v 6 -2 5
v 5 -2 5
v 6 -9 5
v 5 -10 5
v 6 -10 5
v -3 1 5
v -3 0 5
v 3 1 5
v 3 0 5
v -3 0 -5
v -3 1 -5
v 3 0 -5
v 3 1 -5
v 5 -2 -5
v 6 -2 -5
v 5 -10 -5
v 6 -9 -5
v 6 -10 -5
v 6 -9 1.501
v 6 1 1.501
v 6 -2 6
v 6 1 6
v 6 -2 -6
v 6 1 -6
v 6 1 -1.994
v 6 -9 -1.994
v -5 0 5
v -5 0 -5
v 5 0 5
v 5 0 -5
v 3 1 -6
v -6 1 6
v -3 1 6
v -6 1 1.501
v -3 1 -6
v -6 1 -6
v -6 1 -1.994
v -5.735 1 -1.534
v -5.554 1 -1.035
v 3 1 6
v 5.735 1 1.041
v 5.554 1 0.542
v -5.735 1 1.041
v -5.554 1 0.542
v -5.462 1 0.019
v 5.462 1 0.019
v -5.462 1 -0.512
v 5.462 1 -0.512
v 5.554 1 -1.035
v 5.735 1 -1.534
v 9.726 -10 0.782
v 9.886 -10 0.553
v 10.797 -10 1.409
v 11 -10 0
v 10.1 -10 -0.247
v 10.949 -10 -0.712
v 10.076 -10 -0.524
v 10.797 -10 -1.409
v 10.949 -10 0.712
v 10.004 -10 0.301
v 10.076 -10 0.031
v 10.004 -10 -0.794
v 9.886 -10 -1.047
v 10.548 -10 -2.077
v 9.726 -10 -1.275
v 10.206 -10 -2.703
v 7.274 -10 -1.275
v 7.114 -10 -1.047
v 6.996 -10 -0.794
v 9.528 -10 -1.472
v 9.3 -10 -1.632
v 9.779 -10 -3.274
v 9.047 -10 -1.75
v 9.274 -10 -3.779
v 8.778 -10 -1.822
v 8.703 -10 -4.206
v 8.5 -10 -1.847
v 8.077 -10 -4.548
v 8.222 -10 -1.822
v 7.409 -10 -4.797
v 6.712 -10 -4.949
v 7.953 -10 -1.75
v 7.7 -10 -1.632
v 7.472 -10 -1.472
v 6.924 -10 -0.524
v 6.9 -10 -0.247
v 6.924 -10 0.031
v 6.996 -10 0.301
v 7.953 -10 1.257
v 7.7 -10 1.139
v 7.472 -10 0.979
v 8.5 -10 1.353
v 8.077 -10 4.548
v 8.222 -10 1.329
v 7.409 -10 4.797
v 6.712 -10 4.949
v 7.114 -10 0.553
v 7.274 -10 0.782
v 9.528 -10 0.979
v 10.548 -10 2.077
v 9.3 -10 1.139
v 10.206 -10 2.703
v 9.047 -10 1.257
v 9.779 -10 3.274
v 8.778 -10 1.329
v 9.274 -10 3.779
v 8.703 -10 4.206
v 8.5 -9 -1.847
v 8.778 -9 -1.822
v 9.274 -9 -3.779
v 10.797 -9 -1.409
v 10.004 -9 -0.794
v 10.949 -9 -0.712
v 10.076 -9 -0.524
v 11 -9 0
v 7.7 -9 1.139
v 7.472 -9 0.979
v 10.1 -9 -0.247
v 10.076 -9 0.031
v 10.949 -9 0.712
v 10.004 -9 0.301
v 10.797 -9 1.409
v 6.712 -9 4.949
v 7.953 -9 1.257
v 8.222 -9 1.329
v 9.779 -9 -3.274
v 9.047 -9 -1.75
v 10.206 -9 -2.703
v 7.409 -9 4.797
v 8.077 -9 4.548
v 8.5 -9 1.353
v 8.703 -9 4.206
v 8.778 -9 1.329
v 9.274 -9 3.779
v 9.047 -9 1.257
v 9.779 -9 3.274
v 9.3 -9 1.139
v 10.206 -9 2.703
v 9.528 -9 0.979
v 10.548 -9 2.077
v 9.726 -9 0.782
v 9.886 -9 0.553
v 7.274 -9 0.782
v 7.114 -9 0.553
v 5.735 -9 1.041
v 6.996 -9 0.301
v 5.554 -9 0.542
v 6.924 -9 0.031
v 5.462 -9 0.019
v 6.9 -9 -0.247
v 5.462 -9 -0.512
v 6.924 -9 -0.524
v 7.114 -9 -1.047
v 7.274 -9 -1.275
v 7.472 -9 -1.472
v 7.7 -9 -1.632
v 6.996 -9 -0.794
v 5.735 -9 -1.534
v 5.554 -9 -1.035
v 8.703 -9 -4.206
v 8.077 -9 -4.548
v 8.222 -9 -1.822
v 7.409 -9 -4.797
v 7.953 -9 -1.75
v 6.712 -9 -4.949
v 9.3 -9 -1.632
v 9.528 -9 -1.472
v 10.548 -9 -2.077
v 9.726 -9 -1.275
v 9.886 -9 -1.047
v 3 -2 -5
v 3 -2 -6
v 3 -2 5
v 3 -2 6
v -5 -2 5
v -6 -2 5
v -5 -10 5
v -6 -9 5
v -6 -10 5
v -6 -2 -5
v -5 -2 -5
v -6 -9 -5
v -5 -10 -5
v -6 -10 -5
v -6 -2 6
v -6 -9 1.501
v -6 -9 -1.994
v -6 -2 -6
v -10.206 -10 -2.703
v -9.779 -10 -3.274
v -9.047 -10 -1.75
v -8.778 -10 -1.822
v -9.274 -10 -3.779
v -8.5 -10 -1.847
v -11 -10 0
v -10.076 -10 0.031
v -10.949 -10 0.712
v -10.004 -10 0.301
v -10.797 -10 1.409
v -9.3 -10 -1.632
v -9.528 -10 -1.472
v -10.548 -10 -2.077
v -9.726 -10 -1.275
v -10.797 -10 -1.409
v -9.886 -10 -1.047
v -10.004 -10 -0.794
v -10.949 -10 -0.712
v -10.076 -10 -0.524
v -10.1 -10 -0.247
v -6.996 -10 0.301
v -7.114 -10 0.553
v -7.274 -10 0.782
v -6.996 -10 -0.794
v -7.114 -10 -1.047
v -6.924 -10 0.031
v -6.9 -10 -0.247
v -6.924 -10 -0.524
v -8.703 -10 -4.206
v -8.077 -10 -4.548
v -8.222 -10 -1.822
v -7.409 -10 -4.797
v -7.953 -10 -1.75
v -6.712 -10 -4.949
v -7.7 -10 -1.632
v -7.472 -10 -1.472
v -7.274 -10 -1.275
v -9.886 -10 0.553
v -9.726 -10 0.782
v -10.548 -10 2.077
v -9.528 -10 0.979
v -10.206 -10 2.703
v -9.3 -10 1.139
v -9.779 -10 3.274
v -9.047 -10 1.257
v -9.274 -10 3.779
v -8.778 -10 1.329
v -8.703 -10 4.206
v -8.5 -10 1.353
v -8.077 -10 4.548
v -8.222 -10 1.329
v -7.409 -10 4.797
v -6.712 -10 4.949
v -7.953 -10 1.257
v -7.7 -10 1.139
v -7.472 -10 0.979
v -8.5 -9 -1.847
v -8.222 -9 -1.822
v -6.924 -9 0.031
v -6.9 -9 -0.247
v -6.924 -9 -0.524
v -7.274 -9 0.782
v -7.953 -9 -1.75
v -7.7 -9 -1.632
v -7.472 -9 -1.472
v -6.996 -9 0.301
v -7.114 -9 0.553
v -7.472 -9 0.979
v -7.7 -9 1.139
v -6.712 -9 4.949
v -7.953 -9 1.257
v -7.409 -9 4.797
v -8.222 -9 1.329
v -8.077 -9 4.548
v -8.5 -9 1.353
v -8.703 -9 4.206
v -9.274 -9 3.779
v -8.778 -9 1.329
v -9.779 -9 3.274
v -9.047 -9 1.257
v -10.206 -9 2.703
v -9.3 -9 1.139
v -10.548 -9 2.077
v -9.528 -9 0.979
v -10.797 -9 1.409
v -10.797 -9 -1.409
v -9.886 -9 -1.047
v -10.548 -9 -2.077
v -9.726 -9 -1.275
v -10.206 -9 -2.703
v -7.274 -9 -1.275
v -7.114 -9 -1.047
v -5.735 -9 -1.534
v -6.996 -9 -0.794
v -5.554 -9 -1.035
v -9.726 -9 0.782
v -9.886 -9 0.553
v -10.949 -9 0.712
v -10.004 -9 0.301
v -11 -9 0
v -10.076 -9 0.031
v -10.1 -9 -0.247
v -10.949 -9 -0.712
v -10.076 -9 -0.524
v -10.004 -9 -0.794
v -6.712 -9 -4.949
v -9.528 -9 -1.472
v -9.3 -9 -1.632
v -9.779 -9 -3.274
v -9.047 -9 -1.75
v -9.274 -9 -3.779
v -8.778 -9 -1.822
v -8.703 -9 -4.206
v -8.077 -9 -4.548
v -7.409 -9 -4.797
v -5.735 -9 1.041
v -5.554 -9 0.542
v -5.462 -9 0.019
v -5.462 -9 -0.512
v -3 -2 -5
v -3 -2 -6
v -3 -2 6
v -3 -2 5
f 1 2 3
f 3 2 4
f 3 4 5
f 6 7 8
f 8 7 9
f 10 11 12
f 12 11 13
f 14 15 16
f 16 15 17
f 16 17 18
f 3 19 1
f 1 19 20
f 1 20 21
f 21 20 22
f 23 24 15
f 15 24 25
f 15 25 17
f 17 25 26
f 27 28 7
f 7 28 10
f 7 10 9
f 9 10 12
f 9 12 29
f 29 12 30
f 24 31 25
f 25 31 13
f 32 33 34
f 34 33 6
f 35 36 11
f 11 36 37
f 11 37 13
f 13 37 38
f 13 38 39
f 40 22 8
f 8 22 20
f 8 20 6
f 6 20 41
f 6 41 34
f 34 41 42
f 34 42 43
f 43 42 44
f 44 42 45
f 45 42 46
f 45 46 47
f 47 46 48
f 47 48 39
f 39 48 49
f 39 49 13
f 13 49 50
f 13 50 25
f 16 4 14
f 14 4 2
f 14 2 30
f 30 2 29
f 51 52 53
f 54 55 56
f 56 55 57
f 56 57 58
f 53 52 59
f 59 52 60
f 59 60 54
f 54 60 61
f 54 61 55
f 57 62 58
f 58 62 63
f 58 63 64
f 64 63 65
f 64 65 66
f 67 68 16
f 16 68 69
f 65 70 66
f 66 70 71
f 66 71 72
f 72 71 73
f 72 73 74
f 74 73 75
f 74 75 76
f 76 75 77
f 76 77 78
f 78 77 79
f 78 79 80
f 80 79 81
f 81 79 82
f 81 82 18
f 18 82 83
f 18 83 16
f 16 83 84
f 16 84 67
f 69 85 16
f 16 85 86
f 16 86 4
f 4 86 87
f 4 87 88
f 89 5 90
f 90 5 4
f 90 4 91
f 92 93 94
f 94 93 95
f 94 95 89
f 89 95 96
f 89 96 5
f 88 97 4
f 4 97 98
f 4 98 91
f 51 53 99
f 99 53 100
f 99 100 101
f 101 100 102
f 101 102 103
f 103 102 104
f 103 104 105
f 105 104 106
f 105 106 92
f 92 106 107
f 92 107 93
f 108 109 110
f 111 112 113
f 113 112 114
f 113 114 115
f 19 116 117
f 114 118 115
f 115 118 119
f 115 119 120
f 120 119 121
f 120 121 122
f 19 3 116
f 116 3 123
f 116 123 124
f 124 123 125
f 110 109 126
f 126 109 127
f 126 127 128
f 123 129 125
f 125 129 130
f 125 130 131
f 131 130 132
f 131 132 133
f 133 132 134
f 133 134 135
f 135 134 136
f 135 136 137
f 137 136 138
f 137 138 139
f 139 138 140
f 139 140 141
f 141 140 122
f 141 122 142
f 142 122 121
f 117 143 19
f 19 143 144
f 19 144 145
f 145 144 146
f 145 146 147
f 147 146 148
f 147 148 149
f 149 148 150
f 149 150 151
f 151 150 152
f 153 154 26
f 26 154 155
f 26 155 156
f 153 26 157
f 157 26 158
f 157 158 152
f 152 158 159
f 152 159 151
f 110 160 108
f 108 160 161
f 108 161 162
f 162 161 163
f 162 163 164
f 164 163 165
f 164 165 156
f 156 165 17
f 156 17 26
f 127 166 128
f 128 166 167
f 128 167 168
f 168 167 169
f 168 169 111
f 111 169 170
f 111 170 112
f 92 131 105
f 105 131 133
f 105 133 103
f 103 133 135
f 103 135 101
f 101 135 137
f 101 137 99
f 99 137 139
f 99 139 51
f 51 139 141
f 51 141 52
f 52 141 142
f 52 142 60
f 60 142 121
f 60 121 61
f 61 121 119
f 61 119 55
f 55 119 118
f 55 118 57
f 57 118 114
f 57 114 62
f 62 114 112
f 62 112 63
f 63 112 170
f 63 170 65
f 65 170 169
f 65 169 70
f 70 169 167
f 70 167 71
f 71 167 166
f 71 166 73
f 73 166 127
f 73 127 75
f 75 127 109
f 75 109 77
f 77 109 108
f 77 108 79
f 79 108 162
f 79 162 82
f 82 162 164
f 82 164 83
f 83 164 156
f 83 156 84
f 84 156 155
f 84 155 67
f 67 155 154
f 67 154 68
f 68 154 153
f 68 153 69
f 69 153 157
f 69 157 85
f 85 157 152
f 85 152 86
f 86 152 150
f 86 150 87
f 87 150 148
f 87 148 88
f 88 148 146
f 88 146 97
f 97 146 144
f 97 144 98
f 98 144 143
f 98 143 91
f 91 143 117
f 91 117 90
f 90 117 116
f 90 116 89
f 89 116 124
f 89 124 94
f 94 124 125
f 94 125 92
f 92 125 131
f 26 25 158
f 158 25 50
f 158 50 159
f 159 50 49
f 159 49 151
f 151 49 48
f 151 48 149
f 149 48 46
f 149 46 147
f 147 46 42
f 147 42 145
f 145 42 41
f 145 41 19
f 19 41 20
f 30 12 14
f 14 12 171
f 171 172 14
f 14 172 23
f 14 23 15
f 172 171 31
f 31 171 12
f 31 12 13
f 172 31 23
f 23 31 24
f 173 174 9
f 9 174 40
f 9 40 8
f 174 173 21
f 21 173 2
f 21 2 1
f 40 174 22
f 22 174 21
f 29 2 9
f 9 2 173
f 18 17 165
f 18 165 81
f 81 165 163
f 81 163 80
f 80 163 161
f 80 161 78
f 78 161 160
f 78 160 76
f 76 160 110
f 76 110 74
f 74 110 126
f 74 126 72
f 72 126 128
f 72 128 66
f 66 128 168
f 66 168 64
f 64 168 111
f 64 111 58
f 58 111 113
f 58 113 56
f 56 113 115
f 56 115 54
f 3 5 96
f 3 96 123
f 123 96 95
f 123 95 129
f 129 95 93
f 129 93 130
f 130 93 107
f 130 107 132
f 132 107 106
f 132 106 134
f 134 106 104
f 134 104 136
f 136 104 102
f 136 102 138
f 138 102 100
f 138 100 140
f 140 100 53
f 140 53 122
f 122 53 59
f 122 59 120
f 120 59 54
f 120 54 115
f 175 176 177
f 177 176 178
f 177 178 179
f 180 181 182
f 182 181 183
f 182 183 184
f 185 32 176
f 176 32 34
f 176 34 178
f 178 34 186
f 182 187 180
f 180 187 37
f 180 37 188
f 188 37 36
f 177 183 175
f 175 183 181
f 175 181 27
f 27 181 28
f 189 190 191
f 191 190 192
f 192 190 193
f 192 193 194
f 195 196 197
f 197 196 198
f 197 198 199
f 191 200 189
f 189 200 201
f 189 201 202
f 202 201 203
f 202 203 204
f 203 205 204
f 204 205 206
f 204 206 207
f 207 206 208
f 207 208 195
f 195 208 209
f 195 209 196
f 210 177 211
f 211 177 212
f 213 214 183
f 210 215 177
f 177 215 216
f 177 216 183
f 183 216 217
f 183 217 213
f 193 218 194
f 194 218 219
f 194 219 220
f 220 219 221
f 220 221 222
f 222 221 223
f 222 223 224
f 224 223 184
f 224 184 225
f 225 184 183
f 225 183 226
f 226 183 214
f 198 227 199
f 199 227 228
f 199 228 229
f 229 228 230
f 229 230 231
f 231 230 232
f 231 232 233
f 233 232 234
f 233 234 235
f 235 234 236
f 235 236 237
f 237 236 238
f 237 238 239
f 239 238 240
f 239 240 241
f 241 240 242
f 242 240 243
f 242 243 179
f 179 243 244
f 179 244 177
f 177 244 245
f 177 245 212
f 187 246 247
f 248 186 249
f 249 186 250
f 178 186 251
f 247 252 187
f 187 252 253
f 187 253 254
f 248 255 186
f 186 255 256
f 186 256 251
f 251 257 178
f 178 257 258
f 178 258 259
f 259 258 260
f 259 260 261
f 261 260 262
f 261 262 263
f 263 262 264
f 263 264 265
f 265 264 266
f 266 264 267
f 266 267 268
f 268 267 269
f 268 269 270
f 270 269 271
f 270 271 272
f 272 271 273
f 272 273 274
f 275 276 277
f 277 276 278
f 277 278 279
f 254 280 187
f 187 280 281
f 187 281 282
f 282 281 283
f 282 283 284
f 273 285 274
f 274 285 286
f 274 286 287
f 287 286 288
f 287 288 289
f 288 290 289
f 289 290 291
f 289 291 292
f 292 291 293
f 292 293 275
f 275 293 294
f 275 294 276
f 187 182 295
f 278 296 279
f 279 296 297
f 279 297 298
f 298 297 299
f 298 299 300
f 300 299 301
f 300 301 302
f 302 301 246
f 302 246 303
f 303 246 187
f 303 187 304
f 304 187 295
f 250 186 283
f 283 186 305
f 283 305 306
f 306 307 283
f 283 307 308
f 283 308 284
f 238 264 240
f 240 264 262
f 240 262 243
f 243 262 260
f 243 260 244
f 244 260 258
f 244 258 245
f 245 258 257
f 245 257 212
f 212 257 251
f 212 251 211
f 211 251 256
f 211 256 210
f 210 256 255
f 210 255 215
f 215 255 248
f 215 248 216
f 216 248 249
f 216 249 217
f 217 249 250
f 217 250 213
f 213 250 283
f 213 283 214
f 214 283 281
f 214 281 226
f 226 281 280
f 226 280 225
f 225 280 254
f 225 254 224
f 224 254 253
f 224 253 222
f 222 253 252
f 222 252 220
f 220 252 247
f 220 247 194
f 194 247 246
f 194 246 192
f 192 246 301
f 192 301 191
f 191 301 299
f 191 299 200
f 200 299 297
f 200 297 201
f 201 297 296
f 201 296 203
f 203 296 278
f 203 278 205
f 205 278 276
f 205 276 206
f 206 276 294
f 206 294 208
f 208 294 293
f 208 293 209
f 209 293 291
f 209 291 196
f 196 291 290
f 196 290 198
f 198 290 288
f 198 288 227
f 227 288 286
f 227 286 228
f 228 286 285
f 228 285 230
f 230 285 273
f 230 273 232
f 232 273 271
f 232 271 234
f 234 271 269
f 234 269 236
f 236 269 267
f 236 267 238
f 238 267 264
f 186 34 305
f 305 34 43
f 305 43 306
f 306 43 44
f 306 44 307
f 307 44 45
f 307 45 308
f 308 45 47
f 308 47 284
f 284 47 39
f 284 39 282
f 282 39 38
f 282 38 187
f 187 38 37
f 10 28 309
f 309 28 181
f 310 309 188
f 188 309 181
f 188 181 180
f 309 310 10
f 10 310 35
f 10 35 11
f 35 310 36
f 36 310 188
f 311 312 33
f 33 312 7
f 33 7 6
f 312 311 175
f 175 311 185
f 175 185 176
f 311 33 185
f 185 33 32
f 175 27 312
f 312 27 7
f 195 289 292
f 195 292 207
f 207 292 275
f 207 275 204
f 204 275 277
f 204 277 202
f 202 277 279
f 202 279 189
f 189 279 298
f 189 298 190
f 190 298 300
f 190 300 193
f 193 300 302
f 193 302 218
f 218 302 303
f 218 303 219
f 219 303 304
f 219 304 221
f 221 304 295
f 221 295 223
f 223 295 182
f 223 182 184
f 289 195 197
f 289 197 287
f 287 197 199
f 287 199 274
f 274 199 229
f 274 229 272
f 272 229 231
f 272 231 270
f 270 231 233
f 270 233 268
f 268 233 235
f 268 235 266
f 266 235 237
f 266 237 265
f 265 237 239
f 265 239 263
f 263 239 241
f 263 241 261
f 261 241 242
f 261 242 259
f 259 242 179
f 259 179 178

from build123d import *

# Parameters (mm, degrees)
SKETCH1_W           = 6
SKETCH1_H           = 10
BOSS_EXTRUDE1_DEPTH = 1
SKETCH2_W           = 1
SKETCH2_H           = 10
BOSS_EXTRUDE2_DEPTH = 10
SKETCH3_W           = 10
SKETCH3_H           = 1
BOSS_EXTRUDE3_DEPTH = 5
CUT_EXTRUDE1_REACH  = 17.684
SKETCH4_R           = 1.6
CUT_EXTRUDE6_START  = -10
SKETCH5_R           = 3.05
CUT_EXTRUDE6_DEPTH  = 10
SKETCH6_W           = 3
SKETCH6_H           = 3
BOSS_EXTRUDE4_DEPTH = 1
SKETCH7_W           = 3
SKETCH7_H           = 3
BOSS_EXTRUDE5_DEPTH = 1
FILLET2_R           = 5


with BuildPart() as part:
    # Sketch1 → Boss-Extrude1 (new body)
    with BuildSketch(Plane(origin=(0, 0, 0), x_dir=(1, 0, 0), z_dir=(0, 1, 0))):
        with Locations((3, 0)):
            Rectangle(SKETCH1_W, SKETCH1_H)
    extrude(amount=BOSS_EXTRUDE1_DEPTH)

    # Sketch2 → Boss-Extrude2 (add)
    with BuildSketch(Plane.XZ):
        with Locations((5.5, 0)):
            Rectangle(SKETCH2_W, SKETCH2_H)
    extrude(amount=BOSS_EXTRUDE2_DEPTH)

    # Sketch3 → Boss-Extrude3 (add)
    with BuildSketch(Plane(origin=(6, 0, 0), x_dir=(0, 0, -1), z_dir=(1, 0, 0))):
        with Locations((0, -9.5)):
            Rectangle(SKETCH3_W, SKETCH3_H)
    extrude(amount=BOSS_EXTRUDE3_DEPTH)

    # Sketch4 → Cut-Extrude1 (cut, up to next)
    with BuildSketch(Plane(origin=(0, -9, 0), x_dir=(1, 0, 0), z_dir=(0, 1, 0)), mode=Mode.PRIVATE) as cut_extrude1_sk1:
        with Locations(Location((8.5, 0.246614642, 0), (0, 0, 270))):
            Circle(SKETCH4_R)
    cut_extrude1_tool1 = extrude(cut_extrude1_sk1.sketch, amount=-CUT_EXTRUDE1_REACH, mode=Mode.PRIVATE) & part.part
    add(cut_extrude1_tool1.solids().sort_by_distance((8.5, -9, -0.246615))[0], mode=Mode.SUBTRACT)

    # Sketch5 → Cut-Extrude6 (cut)
    with BuildSketch(Plane(origin=(0, 1, 0), x_dir=(1, 0, 0), z_dir=(0, 1, 0)).offset(CUT_EXTRUDE6_START)):
        with Locations((8.5, 0.246614642)):
            Circle(SKETCH5_R)
    extrude(amount=CUT_EXTRUDE6_DEPTH, mode=Mode.SUBTRACT)

    # Sketch6 → Boss-Extrude4 (add)
    with BuildSketch(Plane(origin=(0, 0, -5), x_dir=(-1, 0, 0), z_dir=(0, 0, -1))):
        with Locations((-4.5, -0.5)):
            Rectangle(SKETCH6_W, SKETCH6_H)
    extrude(amount=BOSS_EXTRUDE4_DEPTH)

    # Sketch7 → Boss-Extrude5 (add)
    with BuildSketch(Plane.XY.offset(5)):
        with Locations((4.5, -0.5)):
            Rectangle(SKETCH7_W, SKETCH7_H)
    extrude(amount=BOSS_EXTRUDE5_DEPTH)

    # Fillet2
    fillet2_edges = [part.edges().sort_by_distance(p)[0] for p in [
        (11, -9.5, 5),
        (11, -9.5, -5),
    ]]
    fillet(fillet2_edges, radius=FILLET2_R - 0.0001)  # a hair under: the kernel refuses the full size

    # Mirror1: part across plane


with BuildPart() as part_1:
    add(part.part)
    add(part.part.mirror(Plane(origin=(0, 0, 0), x_dir=(0, 0, 1), z_dir=(1, 0, 0))))


solid = part_1.part
